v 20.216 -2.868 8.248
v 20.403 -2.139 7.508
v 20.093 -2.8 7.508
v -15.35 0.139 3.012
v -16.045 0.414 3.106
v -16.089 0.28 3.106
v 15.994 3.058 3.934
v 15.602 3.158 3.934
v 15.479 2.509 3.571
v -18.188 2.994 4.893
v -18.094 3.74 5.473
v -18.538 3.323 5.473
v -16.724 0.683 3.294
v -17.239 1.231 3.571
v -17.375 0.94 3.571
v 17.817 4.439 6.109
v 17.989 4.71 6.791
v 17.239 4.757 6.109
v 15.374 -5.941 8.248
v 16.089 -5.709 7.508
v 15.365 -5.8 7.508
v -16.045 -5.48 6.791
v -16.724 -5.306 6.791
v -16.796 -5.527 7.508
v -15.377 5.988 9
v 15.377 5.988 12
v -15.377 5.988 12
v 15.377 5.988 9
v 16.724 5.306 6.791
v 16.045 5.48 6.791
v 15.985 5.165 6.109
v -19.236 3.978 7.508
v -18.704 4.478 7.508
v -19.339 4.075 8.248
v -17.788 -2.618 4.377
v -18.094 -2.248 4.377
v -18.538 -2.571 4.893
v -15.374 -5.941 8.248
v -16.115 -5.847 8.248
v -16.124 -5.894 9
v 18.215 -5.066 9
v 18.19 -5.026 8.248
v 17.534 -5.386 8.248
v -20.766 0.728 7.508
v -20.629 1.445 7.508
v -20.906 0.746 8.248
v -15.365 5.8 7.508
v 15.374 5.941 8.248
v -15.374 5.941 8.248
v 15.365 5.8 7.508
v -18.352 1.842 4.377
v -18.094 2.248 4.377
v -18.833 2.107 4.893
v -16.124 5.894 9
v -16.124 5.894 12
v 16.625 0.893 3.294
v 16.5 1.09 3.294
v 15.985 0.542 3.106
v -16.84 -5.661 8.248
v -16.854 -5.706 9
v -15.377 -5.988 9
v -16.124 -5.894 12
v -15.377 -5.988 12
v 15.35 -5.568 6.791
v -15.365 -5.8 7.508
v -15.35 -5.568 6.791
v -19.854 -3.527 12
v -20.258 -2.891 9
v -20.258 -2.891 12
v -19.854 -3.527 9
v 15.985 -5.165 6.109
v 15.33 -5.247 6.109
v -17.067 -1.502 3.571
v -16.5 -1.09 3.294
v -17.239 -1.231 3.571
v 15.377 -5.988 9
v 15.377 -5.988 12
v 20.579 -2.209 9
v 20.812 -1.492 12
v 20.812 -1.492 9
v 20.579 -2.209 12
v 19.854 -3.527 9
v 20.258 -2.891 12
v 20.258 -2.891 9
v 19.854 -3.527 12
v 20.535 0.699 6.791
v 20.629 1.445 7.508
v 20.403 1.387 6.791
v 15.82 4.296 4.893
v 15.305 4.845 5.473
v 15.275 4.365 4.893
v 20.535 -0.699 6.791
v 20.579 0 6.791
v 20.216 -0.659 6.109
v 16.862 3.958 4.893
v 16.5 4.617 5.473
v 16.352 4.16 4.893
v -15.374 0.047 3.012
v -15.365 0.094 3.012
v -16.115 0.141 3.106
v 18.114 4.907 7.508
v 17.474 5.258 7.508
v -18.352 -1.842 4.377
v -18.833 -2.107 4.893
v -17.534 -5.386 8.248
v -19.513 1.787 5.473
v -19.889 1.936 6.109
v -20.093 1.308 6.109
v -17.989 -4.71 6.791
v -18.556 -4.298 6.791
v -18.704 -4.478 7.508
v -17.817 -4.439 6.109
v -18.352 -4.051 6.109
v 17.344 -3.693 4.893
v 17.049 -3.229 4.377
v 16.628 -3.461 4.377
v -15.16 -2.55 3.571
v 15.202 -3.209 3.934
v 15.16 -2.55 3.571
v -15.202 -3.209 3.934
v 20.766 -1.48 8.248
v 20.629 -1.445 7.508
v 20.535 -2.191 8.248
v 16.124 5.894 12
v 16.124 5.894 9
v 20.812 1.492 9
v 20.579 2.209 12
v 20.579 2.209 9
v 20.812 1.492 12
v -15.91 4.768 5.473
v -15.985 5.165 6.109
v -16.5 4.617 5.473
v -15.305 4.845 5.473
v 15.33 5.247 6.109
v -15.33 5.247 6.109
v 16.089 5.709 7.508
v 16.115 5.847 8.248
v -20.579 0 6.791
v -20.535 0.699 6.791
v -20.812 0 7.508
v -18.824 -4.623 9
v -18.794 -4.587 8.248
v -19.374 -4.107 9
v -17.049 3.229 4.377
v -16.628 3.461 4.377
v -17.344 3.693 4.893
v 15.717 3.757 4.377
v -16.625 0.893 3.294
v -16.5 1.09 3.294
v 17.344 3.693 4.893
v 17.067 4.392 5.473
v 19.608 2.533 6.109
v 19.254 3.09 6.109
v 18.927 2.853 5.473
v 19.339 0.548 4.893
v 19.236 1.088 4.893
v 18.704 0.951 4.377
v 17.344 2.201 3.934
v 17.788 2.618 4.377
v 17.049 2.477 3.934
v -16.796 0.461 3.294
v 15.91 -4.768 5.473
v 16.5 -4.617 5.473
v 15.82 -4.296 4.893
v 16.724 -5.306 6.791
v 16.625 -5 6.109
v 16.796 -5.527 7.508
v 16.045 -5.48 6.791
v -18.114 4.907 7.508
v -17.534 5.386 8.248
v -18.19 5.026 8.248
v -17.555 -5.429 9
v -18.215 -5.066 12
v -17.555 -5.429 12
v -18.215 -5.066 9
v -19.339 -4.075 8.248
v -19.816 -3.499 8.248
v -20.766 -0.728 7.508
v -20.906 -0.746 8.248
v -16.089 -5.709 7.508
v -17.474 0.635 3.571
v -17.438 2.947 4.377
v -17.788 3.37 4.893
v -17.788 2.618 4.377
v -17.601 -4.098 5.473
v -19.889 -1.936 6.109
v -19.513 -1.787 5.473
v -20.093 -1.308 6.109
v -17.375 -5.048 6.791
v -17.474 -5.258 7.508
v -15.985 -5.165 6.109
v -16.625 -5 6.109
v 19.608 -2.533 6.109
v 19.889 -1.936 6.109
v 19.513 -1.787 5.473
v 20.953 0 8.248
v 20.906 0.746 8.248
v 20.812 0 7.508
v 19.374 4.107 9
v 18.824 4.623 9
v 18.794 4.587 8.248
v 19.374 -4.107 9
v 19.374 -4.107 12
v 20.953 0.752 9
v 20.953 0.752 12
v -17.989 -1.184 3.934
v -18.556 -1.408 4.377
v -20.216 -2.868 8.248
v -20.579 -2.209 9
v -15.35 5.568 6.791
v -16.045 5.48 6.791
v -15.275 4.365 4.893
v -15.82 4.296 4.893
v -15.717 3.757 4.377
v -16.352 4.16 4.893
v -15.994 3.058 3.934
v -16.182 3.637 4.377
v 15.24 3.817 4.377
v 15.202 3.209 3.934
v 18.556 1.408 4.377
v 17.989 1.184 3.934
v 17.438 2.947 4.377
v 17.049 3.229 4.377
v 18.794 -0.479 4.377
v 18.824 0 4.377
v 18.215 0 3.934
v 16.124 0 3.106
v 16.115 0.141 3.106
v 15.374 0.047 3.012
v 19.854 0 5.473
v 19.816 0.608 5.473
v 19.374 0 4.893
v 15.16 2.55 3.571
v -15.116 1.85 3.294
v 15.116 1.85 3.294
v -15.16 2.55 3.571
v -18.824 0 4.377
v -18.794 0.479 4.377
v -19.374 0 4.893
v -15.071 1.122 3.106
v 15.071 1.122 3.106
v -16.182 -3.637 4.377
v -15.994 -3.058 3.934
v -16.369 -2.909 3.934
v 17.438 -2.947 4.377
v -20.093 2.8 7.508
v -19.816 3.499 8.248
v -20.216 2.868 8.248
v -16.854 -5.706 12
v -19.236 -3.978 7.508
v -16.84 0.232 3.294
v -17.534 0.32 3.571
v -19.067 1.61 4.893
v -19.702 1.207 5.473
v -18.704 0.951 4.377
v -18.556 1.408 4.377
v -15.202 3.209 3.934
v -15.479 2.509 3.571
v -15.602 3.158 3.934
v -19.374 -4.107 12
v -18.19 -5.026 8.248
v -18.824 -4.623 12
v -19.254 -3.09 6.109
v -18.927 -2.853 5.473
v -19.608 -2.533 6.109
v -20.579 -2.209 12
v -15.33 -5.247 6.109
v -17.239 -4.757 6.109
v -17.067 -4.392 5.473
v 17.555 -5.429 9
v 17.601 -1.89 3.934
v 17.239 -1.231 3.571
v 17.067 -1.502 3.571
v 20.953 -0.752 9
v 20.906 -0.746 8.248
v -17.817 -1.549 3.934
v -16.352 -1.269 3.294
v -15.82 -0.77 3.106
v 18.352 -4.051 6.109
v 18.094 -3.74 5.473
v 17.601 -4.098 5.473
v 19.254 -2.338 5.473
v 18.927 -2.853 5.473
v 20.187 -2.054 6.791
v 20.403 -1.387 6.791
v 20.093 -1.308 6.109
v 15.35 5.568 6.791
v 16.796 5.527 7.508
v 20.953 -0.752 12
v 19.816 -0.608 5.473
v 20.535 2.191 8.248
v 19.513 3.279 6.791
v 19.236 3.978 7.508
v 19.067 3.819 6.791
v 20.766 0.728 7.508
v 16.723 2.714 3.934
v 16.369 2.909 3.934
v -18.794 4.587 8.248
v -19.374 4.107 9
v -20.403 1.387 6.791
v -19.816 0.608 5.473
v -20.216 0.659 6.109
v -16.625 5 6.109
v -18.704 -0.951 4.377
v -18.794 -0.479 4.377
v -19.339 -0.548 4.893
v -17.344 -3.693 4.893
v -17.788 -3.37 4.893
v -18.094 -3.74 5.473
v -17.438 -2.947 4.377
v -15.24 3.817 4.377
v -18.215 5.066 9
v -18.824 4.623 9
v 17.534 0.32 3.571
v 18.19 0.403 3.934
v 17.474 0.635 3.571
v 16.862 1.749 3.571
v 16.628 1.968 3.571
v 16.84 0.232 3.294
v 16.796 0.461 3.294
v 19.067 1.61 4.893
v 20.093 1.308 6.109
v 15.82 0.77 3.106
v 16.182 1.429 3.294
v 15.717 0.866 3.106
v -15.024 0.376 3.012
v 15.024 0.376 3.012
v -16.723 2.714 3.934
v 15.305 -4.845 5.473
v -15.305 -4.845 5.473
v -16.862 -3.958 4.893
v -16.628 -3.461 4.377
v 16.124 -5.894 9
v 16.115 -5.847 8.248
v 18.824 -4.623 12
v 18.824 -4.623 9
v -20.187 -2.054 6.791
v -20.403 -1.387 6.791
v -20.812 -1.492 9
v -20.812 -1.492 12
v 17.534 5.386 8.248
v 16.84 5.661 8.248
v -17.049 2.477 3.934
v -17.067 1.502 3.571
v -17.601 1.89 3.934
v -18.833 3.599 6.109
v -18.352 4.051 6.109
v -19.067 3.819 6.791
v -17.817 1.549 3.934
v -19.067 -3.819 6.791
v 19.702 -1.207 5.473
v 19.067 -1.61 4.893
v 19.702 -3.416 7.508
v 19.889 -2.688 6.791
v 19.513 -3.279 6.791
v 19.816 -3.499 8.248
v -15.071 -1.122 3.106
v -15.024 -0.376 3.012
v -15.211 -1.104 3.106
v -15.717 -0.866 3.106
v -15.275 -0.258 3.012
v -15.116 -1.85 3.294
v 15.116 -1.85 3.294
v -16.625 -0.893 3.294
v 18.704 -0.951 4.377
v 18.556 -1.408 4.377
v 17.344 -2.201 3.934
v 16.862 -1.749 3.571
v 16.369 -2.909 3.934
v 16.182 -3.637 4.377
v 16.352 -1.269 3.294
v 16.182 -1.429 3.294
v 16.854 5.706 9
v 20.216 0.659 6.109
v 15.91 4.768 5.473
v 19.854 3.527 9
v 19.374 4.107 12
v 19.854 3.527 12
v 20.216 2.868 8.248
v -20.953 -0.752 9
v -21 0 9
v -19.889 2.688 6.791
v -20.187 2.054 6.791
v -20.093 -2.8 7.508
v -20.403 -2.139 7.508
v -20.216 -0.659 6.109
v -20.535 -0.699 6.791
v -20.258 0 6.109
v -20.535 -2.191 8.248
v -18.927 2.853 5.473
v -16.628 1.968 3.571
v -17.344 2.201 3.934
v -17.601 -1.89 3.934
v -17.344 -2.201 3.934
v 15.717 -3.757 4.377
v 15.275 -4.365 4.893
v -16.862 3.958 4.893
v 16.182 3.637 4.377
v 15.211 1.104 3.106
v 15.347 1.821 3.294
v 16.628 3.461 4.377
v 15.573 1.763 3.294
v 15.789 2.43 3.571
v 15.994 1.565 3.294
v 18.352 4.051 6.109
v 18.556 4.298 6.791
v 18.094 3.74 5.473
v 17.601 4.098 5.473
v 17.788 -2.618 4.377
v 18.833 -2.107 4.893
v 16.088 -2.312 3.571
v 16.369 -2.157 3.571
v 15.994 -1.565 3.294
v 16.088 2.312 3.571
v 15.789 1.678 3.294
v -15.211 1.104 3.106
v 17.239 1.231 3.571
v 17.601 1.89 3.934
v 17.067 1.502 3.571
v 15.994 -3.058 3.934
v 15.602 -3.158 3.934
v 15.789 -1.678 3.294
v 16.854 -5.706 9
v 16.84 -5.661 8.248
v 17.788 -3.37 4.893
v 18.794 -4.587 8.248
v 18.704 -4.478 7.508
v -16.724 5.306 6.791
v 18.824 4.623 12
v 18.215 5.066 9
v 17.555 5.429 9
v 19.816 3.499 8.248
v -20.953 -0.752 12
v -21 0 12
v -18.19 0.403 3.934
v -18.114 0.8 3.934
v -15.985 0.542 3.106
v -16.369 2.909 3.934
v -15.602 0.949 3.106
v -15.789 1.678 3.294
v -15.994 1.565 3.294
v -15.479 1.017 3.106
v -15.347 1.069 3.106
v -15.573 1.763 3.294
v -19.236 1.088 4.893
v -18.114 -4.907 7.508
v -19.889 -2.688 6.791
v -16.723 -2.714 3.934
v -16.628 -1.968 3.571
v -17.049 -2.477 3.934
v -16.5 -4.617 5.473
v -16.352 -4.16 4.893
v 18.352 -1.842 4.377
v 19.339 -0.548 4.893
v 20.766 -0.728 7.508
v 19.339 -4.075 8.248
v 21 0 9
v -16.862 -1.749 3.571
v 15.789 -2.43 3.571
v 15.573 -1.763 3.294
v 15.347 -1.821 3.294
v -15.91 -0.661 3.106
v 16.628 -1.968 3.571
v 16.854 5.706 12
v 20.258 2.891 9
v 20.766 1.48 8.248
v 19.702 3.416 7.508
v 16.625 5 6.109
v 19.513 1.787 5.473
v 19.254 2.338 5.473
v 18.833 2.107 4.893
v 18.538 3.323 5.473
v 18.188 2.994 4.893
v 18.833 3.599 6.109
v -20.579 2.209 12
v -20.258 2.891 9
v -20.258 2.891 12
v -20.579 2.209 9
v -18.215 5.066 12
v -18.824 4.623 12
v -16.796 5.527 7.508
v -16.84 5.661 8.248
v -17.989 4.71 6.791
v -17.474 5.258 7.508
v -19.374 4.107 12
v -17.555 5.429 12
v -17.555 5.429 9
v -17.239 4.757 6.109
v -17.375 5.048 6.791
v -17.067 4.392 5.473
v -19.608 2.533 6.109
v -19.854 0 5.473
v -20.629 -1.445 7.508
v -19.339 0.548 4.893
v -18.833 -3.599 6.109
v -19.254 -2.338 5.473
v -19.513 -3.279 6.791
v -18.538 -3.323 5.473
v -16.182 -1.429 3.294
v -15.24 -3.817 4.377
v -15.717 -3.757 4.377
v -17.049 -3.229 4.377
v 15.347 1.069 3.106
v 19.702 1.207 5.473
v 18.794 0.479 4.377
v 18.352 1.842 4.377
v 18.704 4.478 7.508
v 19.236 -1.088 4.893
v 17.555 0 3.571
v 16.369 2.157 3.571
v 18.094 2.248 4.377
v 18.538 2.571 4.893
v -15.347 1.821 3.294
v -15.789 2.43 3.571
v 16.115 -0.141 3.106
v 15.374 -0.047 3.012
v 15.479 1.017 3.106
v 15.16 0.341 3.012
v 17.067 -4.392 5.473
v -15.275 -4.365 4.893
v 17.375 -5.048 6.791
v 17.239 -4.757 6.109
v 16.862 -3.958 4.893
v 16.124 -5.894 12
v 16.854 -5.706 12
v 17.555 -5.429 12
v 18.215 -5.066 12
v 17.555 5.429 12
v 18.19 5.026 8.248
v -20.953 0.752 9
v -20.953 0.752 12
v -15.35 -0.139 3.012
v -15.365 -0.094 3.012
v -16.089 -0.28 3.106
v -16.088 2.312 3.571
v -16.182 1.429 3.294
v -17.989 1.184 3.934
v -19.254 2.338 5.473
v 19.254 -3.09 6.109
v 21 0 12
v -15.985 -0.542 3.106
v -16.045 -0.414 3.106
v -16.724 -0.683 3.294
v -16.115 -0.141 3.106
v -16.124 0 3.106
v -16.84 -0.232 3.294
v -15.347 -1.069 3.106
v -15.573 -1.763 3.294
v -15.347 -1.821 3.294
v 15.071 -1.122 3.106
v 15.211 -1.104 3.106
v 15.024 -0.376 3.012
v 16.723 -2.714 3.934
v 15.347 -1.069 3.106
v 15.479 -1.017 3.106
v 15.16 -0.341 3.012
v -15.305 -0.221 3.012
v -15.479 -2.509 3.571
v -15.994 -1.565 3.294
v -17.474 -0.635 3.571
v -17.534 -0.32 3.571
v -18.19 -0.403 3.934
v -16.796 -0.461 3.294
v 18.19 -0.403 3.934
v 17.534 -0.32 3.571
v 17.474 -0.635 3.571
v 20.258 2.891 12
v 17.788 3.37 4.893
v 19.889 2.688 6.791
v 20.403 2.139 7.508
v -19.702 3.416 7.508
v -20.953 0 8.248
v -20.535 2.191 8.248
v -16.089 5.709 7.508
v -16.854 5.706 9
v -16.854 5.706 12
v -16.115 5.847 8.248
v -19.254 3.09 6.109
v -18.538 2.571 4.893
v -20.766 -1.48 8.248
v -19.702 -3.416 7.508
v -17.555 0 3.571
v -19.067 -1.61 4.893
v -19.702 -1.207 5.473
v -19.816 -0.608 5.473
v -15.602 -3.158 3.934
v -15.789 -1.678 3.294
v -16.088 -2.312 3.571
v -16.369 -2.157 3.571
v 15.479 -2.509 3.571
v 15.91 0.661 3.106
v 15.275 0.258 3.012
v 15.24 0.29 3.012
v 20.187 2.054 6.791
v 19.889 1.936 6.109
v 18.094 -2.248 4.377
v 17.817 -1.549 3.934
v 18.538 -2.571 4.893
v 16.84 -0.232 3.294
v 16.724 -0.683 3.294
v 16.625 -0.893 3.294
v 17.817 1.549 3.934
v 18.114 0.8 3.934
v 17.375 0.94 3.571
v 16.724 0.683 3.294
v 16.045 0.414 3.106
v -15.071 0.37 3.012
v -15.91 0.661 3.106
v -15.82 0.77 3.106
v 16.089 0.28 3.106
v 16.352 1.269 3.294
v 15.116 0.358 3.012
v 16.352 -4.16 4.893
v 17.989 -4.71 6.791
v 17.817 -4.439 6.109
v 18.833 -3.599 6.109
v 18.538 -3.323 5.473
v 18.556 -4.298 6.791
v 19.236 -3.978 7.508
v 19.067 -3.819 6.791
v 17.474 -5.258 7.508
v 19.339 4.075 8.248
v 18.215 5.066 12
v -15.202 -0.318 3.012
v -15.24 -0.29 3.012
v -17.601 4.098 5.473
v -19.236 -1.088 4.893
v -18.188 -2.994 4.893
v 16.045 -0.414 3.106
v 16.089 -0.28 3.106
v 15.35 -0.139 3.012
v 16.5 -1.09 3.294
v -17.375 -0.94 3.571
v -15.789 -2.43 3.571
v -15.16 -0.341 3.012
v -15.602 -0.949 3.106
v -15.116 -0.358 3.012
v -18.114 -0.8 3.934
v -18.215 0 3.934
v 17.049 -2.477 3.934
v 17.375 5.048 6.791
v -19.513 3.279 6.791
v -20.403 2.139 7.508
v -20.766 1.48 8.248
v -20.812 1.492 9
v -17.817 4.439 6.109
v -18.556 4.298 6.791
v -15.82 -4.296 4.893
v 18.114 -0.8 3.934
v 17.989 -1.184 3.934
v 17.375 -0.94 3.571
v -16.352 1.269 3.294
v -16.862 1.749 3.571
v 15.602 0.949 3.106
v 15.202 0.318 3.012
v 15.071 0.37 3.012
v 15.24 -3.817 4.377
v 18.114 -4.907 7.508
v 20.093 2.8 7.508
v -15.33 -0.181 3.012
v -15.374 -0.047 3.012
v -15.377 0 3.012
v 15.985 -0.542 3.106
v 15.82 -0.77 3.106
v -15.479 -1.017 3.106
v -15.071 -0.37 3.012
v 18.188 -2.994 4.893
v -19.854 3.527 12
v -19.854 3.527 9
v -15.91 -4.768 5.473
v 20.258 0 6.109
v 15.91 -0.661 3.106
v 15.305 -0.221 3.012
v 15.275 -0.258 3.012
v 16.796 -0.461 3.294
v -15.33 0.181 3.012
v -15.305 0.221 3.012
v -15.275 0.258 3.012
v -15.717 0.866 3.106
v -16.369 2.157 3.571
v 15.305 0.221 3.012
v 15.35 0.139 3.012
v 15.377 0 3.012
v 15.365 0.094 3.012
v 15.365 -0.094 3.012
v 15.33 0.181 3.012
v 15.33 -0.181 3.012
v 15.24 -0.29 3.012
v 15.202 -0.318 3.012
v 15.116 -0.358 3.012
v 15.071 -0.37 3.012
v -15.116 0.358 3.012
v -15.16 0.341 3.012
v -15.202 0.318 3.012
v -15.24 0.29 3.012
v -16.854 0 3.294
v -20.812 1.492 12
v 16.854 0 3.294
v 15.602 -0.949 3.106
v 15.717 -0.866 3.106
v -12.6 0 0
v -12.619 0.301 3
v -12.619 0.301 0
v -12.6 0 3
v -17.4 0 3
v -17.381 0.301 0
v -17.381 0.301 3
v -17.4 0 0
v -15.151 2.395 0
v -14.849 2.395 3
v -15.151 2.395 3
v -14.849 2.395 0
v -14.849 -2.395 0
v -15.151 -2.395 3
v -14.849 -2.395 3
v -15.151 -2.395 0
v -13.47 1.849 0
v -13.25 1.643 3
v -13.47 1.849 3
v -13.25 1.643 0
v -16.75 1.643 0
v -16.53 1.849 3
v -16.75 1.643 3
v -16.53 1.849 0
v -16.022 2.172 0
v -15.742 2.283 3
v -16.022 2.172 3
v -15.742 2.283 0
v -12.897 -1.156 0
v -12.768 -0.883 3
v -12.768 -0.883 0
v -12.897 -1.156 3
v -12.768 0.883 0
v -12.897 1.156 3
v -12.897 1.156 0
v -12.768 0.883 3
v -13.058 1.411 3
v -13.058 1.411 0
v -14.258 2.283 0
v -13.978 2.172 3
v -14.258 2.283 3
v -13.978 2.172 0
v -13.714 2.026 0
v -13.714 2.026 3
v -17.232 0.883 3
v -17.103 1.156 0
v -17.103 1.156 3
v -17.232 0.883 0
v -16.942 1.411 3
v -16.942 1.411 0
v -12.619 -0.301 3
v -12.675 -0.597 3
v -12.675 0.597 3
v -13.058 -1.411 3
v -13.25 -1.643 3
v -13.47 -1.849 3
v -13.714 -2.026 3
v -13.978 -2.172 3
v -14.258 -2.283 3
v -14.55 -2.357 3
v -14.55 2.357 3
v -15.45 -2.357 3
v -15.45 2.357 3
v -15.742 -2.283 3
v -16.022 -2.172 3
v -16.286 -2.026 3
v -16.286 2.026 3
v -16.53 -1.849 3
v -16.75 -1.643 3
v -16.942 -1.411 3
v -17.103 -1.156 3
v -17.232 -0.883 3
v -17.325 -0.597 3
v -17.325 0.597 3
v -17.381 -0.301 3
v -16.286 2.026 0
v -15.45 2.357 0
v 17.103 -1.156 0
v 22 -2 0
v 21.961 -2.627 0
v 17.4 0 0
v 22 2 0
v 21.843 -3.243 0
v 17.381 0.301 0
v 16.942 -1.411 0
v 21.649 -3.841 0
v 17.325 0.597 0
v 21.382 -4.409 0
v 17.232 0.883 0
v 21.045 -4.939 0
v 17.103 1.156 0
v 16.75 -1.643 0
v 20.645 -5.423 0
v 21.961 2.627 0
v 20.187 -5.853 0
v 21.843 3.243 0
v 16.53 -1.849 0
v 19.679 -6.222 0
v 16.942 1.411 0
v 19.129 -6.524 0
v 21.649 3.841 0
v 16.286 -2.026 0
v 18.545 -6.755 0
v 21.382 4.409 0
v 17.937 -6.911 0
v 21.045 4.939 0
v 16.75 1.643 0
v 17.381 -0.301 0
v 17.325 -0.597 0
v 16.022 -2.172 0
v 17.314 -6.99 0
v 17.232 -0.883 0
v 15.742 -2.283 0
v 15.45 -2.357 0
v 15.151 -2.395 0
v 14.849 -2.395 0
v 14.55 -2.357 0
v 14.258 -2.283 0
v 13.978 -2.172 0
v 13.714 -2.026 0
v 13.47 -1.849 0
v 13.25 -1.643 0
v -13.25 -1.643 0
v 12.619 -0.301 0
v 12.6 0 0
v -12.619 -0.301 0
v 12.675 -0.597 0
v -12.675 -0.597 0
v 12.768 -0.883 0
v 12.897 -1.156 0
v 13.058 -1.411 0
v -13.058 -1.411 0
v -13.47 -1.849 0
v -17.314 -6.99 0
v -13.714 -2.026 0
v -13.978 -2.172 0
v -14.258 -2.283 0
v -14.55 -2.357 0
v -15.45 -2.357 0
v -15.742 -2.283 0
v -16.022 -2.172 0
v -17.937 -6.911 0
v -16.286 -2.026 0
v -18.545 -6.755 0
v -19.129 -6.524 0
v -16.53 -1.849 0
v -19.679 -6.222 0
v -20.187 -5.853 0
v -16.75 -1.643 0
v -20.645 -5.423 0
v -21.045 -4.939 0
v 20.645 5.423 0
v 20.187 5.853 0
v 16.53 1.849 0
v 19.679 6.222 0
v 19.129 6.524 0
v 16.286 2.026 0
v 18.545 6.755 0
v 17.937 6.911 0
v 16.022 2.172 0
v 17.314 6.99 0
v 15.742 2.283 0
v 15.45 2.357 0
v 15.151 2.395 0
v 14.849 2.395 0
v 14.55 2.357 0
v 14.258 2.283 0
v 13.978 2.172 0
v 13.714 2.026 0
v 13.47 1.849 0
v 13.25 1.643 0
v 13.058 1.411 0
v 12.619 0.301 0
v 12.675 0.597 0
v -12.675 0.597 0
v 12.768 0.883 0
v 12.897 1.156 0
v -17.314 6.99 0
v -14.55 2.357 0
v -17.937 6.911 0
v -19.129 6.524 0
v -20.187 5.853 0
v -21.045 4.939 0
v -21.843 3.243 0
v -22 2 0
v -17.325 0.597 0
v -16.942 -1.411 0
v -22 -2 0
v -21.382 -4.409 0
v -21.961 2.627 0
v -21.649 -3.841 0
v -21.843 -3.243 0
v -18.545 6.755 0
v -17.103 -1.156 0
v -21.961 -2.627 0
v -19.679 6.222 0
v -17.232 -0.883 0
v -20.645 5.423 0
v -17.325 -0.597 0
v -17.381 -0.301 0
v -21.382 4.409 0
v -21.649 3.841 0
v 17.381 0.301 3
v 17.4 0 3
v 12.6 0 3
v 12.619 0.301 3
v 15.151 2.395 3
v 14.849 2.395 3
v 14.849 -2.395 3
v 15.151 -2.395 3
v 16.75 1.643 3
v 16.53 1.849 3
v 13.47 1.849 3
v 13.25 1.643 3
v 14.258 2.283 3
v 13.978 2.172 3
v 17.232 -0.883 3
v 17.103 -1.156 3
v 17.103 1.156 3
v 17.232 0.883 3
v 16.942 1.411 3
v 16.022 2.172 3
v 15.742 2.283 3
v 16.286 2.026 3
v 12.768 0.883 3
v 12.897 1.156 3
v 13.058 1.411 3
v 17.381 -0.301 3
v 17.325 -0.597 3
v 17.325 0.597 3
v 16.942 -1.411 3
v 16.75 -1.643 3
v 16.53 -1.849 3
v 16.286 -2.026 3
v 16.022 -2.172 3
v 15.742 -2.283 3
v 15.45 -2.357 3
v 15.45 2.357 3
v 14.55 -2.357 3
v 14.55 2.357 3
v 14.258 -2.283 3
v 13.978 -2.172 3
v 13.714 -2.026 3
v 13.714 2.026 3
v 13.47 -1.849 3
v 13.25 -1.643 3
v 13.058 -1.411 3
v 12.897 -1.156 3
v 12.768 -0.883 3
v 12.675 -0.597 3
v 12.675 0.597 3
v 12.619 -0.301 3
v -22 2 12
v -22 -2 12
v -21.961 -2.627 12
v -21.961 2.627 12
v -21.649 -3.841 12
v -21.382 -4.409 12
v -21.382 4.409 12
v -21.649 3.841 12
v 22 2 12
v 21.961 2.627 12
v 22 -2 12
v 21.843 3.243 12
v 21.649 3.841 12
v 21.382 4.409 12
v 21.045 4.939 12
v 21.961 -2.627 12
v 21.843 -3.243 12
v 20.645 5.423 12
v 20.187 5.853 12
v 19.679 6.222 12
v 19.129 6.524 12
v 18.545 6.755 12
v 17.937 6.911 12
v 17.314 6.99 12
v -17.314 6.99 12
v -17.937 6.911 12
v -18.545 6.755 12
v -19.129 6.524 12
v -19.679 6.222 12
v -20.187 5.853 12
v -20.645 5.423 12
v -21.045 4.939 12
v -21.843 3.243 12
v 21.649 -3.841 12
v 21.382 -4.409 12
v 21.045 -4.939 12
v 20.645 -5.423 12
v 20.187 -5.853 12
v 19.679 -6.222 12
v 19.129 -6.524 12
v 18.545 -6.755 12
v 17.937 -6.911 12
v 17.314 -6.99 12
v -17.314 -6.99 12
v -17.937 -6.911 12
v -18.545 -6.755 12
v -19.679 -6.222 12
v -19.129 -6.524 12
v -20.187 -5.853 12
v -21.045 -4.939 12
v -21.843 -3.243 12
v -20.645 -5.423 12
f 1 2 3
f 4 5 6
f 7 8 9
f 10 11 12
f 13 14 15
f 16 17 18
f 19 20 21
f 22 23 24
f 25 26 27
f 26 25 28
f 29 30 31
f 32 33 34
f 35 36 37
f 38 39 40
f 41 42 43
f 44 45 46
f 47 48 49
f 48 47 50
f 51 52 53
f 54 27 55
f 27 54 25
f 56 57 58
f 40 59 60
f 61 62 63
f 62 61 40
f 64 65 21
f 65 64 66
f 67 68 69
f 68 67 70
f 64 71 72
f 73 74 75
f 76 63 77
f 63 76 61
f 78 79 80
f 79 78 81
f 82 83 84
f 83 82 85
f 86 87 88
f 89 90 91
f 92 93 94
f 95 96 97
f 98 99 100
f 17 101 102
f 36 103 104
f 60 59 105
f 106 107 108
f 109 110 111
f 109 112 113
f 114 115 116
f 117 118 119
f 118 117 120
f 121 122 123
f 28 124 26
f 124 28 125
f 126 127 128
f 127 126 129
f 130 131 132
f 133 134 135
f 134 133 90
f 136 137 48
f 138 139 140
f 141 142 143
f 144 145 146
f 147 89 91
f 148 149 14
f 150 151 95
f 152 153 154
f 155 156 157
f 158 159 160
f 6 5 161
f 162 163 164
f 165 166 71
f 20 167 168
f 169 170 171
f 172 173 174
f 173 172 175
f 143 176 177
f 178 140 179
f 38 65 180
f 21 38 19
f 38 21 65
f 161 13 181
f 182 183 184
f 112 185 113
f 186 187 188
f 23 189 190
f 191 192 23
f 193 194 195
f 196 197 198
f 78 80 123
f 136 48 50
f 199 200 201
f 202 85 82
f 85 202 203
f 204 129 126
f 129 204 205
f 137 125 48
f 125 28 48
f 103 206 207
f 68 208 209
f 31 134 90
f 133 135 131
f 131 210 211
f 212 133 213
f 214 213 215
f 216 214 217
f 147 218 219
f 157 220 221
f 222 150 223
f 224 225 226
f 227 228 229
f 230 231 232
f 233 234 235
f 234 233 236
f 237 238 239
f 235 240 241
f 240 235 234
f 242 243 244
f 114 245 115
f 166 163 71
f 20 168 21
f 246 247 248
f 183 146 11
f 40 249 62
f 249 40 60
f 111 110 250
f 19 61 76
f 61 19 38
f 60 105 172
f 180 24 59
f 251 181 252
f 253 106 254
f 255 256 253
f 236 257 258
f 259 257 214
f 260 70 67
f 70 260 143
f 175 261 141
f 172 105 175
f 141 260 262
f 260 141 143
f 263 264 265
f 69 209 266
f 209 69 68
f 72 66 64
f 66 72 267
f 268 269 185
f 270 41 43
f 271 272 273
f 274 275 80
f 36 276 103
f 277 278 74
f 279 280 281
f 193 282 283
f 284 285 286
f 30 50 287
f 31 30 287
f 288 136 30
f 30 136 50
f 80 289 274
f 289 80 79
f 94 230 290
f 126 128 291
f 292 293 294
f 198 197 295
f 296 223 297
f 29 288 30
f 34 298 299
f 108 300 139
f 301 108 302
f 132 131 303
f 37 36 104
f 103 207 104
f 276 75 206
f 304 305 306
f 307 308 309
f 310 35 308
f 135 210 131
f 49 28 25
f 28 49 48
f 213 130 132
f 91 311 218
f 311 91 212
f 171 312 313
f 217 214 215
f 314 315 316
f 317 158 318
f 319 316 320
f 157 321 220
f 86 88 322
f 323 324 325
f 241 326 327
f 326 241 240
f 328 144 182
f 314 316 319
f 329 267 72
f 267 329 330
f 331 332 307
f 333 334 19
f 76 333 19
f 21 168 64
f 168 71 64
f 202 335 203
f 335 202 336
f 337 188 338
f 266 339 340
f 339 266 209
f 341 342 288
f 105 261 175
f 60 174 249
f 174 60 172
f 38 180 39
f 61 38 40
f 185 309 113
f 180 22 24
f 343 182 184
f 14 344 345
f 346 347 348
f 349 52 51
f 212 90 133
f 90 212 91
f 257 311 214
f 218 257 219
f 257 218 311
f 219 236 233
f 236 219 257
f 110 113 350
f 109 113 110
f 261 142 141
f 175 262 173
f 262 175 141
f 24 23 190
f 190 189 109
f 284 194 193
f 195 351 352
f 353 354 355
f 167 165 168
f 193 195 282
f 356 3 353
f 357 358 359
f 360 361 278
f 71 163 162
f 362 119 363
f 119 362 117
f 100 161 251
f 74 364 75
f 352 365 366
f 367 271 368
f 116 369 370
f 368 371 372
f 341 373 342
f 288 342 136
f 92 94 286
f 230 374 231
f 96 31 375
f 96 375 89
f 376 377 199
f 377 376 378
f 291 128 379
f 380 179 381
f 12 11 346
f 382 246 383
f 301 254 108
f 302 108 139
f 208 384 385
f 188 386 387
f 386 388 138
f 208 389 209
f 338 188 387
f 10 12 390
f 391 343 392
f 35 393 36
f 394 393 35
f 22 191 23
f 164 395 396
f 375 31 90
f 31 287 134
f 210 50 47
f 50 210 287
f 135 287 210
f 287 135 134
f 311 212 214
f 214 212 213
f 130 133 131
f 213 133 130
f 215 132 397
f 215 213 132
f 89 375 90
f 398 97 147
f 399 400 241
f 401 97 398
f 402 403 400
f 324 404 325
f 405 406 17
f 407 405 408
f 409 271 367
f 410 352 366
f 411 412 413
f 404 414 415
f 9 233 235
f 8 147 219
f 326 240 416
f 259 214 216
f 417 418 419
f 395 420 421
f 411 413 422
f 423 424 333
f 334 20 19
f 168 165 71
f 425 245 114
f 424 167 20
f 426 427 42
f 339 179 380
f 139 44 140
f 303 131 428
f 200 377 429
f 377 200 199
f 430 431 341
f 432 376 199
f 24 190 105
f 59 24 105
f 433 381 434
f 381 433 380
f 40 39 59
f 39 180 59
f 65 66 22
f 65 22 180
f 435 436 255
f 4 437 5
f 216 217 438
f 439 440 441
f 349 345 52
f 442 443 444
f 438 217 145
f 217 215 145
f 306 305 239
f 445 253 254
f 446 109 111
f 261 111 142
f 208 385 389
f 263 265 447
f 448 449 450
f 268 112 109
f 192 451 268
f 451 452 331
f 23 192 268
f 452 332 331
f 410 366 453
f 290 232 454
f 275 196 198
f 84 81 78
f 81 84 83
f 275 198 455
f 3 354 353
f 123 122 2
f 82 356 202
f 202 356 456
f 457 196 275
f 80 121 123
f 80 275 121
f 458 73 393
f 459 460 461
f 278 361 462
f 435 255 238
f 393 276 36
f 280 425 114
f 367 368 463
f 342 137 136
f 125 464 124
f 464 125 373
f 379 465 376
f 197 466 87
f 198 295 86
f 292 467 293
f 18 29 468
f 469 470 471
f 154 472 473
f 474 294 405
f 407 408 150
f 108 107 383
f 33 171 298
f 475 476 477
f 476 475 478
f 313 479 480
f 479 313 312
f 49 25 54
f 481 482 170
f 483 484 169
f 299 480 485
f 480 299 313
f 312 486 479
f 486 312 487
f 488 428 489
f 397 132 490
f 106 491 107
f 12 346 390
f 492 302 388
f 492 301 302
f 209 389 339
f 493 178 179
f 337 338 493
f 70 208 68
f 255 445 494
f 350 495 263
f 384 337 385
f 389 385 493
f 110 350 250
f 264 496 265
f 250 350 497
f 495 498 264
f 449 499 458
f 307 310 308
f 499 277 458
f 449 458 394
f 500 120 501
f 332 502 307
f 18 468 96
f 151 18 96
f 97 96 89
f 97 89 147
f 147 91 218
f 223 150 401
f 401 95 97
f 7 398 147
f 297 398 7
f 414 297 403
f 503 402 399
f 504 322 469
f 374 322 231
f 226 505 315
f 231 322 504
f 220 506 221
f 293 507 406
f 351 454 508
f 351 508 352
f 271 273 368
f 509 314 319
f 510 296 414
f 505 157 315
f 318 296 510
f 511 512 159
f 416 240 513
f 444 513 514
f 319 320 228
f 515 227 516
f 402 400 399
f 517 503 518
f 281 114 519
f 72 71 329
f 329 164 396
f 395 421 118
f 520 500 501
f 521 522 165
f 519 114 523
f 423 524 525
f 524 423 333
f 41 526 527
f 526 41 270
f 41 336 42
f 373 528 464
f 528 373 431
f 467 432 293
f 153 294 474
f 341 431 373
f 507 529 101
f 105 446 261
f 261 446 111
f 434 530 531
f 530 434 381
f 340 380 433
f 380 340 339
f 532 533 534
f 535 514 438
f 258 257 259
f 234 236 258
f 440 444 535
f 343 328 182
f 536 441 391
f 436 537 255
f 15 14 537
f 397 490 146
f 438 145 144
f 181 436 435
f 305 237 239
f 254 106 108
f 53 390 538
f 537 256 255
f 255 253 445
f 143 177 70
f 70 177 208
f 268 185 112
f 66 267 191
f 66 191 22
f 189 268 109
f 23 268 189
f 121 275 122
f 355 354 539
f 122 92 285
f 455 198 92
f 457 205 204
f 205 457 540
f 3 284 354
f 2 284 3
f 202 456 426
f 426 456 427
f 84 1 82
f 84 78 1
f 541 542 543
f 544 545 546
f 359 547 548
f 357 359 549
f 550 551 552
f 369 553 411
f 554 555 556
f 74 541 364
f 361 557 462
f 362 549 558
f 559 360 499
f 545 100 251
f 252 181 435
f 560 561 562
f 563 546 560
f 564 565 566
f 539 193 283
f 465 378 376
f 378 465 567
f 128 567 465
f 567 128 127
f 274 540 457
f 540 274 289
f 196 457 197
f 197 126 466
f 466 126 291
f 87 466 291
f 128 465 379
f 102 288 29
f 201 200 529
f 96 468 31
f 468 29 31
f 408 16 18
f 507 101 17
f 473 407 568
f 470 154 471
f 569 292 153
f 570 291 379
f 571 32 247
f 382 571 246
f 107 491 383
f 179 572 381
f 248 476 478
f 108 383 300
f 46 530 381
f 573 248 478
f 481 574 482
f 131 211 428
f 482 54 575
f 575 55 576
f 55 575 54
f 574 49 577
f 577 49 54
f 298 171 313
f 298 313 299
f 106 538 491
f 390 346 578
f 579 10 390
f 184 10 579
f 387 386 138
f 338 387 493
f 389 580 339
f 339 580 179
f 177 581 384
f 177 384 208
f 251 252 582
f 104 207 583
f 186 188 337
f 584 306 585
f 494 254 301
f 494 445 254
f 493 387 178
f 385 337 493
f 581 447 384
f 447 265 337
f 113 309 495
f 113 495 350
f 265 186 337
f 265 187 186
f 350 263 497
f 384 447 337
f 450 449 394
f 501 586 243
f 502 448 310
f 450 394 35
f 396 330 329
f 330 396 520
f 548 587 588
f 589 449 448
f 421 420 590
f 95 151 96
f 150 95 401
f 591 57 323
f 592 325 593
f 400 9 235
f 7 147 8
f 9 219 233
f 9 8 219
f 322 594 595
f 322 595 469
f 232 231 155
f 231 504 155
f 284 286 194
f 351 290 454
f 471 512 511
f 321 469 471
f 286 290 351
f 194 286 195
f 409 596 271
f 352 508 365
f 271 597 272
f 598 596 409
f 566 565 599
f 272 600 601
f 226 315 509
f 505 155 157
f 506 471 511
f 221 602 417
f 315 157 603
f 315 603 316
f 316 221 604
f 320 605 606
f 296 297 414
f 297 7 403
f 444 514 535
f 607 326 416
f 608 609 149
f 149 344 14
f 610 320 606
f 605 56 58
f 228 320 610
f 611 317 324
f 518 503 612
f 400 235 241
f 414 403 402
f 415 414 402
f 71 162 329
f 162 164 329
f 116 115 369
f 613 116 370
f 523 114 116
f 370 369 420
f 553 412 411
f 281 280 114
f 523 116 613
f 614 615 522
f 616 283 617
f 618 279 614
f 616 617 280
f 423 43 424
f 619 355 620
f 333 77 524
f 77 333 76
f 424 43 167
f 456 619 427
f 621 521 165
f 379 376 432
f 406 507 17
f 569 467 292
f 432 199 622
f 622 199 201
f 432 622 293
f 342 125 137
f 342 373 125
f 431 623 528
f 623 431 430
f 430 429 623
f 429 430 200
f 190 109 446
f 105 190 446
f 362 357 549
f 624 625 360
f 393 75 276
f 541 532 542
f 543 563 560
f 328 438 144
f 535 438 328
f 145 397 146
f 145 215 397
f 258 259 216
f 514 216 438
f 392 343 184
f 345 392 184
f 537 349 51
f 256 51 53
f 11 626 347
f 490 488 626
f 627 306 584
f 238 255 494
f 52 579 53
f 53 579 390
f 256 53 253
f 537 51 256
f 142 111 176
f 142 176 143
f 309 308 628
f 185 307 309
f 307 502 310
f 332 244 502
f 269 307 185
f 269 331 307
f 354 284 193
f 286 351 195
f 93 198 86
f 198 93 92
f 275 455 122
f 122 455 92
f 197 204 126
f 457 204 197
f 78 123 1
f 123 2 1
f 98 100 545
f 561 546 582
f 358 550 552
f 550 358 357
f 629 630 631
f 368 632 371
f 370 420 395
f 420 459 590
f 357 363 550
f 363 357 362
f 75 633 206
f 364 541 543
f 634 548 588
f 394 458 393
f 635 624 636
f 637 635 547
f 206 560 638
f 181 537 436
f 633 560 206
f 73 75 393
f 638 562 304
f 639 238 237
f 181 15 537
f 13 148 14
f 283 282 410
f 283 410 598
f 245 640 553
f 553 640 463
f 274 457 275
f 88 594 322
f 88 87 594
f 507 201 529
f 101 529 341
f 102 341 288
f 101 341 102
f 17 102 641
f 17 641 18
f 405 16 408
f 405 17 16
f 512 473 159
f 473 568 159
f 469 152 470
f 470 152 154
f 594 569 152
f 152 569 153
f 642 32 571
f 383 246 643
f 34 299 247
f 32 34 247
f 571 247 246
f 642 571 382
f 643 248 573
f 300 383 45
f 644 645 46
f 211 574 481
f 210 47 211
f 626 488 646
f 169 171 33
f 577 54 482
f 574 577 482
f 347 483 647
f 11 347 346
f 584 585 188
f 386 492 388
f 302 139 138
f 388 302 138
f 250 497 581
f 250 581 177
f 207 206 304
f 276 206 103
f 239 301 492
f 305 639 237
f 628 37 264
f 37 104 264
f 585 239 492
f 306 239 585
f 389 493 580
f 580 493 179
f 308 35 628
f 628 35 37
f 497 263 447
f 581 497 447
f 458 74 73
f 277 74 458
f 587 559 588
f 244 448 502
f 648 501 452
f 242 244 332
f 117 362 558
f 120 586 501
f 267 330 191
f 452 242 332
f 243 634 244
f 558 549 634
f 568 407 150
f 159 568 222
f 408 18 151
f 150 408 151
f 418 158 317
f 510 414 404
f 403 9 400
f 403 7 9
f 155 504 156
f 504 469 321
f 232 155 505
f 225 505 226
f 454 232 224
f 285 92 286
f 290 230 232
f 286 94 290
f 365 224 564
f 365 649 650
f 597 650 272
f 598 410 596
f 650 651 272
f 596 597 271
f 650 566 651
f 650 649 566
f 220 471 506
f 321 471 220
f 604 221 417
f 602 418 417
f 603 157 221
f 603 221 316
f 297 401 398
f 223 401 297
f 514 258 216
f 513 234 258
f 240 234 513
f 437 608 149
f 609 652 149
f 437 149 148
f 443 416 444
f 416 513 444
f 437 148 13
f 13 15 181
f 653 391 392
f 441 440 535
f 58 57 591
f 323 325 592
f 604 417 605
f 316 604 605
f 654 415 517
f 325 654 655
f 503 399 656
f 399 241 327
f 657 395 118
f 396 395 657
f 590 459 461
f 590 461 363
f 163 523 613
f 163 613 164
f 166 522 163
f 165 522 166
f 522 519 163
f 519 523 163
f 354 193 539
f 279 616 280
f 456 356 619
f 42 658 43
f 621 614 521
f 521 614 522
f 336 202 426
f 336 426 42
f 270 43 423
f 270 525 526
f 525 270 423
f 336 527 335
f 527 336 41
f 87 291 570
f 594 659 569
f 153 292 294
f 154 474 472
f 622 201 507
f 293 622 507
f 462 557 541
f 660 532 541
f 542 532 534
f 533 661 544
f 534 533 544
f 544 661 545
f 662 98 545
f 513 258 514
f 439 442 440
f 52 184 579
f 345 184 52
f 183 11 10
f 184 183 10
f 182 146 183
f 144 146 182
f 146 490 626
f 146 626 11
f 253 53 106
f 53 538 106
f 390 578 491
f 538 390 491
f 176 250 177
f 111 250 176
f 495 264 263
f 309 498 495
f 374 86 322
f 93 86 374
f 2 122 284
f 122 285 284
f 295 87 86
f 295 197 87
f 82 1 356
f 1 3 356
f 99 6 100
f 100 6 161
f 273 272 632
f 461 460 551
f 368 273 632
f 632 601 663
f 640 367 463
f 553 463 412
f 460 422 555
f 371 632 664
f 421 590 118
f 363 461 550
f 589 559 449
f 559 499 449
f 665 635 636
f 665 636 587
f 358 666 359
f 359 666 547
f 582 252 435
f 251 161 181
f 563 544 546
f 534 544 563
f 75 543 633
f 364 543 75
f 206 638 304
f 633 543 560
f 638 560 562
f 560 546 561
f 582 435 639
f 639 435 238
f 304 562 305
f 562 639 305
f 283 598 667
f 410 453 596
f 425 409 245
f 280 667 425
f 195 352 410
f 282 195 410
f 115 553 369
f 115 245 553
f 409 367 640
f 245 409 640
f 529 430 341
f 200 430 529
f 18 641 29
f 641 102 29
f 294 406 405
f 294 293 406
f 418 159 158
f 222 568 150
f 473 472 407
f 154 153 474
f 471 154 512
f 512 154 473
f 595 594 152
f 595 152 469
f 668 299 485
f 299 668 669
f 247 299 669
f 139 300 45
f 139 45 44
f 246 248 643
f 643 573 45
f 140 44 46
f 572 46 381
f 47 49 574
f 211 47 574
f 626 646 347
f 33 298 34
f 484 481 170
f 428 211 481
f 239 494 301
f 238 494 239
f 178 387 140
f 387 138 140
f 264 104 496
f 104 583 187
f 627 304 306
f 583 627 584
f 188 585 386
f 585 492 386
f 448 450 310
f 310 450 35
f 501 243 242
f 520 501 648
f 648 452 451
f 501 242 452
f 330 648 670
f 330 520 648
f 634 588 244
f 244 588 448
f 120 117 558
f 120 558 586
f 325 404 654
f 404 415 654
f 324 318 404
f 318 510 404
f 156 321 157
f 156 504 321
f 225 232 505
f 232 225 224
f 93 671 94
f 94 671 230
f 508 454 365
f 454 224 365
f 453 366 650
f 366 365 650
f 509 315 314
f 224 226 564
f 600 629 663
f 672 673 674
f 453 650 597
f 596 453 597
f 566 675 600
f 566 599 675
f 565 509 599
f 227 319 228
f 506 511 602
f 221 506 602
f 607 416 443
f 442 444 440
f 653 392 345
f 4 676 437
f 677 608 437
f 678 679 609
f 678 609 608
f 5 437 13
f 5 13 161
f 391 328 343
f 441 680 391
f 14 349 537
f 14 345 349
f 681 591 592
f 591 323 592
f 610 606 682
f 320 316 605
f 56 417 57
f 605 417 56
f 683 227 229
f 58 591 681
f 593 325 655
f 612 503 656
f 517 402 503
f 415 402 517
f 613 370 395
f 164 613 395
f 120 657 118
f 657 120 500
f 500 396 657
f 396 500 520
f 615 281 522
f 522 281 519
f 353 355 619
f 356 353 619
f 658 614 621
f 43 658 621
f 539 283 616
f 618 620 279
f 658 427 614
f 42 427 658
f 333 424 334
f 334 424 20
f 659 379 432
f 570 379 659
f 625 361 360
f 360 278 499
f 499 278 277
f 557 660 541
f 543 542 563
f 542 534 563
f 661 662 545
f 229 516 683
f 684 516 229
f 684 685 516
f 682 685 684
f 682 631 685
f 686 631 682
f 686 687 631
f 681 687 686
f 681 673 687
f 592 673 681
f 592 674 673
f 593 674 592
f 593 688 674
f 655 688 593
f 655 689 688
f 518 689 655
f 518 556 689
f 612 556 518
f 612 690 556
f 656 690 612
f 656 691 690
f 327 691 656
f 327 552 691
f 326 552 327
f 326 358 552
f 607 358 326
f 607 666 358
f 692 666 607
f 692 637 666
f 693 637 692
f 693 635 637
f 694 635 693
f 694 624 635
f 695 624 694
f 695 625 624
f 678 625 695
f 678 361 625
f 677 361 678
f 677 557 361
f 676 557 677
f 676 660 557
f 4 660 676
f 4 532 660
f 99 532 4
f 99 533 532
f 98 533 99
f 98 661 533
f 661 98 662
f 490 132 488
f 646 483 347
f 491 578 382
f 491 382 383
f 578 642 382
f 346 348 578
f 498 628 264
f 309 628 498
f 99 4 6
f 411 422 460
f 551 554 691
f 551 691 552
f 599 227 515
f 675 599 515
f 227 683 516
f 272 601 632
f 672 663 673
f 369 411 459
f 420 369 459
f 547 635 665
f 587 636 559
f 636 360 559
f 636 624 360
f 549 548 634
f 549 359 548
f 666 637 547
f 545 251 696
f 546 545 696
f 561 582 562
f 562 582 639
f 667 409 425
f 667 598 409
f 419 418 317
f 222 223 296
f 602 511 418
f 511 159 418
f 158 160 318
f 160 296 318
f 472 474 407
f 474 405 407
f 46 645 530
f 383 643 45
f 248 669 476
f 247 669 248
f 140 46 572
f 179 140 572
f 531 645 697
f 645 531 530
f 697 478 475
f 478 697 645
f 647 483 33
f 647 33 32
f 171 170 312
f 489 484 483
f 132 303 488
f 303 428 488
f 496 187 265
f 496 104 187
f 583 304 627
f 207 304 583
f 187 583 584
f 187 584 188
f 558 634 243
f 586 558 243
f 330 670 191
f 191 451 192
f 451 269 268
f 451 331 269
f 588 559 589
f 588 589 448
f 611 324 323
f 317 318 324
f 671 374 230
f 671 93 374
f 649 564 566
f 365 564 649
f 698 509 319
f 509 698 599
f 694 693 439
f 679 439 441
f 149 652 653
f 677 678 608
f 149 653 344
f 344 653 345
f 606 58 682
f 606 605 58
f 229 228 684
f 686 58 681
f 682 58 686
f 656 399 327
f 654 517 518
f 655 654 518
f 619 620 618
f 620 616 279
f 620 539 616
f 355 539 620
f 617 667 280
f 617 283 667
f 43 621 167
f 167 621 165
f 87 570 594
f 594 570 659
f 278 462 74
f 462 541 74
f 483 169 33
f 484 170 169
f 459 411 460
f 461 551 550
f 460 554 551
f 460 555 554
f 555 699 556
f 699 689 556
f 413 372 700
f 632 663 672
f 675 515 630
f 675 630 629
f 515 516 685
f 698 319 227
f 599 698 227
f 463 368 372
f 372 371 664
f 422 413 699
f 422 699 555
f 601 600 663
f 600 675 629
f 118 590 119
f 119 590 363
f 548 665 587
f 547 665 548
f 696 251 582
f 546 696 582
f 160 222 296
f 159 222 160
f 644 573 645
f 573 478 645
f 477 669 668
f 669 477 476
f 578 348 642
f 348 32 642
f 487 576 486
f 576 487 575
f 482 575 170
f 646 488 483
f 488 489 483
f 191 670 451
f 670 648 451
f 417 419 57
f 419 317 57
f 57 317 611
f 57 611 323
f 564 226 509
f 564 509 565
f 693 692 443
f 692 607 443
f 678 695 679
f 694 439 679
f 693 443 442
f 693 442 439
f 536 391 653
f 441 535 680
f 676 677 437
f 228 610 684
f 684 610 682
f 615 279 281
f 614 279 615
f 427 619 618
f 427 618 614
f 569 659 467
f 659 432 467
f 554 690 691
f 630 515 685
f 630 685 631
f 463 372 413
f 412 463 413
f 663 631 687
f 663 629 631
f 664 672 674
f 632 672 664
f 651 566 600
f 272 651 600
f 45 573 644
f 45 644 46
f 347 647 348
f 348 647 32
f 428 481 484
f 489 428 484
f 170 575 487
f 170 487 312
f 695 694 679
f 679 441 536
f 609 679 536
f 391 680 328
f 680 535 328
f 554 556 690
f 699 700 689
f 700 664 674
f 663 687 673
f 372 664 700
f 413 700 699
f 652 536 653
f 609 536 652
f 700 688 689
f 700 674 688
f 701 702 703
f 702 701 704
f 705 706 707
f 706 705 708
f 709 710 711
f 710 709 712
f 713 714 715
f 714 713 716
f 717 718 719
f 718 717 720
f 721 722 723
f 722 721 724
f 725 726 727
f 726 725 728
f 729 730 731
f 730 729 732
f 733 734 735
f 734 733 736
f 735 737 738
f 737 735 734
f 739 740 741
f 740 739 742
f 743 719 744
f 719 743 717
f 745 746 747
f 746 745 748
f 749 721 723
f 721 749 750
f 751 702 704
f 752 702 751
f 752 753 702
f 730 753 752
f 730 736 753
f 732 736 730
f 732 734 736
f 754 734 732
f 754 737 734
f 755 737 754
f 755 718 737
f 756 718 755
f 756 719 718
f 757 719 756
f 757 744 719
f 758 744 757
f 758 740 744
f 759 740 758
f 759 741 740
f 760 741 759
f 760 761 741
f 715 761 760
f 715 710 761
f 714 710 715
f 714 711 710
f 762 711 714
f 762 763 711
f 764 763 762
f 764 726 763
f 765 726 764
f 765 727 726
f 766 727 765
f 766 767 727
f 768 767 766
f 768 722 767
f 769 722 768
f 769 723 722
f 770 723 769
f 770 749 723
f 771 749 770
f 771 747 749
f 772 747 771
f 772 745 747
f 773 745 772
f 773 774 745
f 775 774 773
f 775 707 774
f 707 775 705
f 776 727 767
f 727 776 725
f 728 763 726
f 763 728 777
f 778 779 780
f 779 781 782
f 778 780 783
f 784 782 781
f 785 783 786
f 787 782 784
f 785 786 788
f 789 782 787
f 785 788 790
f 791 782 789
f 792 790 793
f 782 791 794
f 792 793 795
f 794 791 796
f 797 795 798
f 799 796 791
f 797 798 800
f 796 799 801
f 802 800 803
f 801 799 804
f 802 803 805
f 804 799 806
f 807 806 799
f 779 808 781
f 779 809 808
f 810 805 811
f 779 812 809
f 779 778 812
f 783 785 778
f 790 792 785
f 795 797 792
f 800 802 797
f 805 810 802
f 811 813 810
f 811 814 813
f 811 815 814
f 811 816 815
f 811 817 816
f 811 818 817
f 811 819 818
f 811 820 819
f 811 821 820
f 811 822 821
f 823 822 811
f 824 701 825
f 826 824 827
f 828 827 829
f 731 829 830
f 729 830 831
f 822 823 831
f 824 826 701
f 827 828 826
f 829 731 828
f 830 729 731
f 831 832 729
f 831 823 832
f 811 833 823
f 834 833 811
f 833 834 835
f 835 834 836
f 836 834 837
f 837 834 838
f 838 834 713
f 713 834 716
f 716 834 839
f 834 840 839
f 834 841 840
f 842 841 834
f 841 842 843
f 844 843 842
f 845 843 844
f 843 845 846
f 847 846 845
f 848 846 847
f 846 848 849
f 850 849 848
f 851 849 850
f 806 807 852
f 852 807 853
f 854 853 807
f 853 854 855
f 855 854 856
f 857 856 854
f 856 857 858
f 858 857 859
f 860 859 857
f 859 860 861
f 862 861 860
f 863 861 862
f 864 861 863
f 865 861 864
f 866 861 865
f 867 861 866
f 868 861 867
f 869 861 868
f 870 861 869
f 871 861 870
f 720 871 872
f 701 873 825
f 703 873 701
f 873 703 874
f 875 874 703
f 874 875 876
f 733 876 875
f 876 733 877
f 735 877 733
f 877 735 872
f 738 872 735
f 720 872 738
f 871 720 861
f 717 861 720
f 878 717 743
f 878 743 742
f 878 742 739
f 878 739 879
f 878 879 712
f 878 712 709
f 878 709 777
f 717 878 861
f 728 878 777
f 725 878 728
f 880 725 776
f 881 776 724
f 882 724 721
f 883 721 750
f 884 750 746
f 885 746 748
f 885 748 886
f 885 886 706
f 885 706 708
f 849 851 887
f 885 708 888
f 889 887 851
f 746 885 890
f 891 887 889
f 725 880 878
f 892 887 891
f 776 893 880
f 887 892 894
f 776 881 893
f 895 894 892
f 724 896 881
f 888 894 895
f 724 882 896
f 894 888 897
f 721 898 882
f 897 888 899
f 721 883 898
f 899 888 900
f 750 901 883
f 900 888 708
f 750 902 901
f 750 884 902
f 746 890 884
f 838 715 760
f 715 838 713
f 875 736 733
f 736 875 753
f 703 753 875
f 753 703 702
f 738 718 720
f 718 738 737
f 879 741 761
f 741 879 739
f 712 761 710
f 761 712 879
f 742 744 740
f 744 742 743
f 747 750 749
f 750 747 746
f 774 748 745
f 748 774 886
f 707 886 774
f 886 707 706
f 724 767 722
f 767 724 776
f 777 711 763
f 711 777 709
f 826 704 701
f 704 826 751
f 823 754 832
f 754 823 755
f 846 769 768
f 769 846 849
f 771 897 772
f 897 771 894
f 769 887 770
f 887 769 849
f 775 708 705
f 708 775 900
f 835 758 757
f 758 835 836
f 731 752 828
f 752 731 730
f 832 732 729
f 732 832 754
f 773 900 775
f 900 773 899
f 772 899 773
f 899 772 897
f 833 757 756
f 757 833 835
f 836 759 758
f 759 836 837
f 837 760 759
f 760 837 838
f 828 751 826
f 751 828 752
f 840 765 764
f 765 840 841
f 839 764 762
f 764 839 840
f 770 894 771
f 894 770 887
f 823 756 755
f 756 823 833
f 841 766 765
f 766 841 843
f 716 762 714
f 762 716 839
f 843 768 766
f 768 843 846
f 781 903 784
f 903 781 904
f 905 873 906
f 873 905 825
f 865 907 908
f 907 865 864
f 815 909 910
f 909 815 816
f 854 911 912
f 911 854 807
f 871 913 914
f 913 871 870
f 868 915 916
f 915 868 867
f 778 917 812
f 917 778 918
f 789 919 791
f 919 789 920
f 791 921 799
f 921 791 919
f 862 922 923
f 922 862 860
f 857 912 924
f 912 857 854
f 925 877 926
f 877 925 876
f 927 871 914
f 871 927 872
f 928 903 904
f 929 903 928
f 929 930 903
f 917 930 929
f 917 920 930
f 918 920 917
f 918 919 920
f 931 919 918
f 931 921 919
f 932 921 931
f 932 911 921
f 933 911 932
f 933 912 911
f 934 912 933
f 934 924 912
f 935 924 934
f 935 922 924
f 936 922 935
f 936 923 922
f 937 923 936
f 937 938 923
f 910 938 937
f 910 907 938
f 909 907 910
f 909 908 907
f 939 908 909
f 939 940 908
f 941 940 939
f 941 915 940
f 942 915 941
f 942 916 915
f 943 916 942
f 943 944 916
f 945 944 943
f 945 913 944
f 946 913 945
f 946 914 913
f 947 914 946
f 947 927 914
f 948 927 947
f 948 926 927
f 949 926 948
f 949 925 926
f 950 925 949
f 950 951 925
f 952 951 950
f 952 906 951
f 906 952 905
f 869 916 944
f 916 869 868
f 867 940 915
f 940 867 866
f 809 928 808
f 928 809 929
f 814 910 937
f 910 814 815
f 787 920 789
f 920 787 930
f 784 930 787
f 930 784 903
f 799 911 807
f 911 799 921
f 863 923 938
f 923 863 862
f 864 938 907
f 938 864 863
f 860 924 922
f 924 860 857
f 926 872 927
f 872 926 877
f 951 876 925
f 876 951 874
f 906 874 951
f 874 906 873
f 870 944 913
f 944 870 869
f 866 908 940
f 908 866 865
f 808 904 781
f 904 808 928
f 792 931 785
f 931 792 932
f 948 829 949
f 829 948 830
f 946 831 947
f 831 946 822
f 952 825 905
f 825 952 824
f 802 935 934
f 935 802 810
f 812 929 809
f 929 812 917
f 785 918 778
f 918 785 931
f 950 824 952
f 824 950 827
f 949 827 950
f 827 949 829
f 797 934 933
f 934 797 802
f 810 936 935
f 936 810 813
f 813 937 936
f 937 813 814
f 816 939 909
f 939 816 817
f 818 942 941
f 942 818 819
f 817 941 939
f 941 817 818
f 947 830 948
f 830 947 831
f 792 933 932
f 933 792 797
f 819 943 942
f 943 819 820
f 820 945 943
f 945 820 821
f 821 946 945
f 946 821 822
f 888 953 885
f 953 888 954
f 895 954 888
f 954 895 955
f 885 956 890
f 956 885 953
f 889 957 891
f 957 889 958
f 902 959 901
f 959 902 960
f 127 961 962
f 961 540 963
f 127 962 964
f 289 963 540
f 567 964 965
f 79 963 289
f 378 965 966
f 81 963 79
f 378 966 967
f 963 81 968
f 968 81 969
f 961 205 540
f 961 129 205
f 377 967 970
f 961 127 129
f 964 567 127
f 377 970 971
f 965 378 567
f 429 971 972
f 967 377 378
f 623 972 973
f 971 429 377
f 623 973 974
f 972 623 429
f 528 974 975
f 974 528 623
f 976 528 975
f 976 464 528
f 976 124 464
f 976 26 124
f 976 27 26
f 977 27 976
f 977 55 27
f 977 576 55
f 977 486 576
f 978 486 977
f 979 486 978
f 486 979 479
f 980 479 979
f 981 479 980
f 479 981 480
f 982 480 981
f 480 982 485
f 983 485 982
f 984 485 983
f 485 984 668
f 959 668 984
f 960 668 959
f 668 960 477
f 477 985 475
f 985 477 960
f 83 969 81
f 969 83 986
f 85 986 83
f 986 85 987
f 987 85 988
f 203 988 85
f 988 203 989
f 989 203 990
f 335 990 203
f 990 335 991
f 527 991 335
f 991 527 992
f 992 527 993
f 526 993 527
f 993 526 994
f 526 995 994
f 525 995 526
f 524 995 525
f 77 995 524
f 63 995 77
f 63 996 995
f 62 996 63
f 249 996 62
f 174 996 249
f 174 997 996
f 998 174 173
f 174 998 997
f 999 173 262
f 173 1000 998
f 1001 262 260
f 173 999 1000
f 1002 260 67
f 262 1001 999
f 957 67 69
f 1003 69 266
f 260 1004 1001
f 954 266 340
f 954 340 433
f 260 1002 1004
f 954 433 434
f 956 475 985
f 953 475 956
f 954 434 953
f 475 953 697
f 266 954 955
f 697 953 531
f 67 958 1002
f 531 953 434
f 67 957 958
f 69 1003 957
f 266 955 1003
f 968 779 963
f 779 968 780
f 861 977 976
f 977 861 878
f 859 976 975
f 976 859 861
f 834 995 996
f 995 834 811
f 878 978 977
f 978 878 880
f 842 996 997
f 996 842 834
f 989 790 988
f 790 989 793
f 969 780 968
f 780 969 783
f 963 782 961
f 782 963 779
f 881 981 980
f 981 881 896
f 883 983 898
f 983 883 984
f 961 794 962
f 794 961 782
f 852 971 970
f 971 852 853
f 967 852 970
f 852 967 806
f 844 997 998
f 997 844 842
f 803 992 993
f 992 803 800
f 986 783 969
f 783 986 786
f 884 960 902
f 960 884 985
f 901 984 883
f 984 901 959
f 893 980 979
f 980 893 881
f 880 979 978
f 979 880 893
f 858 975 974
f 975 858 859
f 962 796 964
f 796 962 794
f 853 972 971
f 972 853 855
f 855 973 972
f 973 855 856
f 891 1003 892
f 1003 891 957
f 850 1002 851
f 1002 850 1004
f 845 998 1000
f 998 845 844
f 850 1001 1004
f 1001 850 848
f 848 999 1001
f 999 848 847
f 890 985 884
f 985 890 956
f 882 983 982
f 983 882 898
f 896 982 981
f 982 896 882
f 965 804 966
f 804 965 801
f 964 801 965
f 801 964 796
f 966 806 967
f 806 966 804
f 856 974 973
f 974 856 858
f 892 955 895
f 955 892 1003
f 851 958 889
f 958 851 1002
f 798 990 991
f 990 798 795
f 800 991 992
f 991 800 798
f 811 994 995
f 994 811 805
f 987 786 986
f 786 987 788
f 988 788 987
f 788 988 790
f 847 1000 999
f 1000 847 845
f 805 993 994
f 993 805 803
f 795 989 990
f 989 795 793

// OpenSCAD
$fn = 50;


difference() {
	union() {
		translate(v = [0, 0, 0]) {
			rotate(a = [0, 0, 0]) {
				hull() {
					translate(v = [-17.0000000000, 2.0000000000, 0]) {
						rotate(a = [0, 0, 0]) {
							translate(v = [0, 0, 0]) {
								rotate(a = [0, 0, 0]) {
									cylinder(h = 12, r = 5);
								}
							}
						}
					}
					translate(v = [17.0000000000, 2.0000000000, 0]) {
						rotate(a = [0, 0, 0]) {
							translate(v = [0, 0, 0]) {
								rotate(a = [0, 0, 0]) {
									cylinder(h = 12, r = 5);
								}
							}
						}
					}
					translate(v = [-17.0000000000, -2.0000000000, 0]) {
						rotate(a = [0, 0, 0]) {
							translate(v = [0, 0, 0]) {
								rotate(a = [0, 0, 0]) {
									cylinder(h = 12, r = 5);
								}
							}
						}
					}
					translate(v = [17.0000000000, -2.0000000000, 0]) {
						rotate(a = [0, 0, 0]) {
							translate(v = [0, 0, 0]) {
								rotate(a = [0, 0, 0]) {
									cylinder(h = 12, r = 5);
								}
							}
						}
					}
				}
			}
		}
	}
	union() {
		translate(v = [0, 0, 3]) {
			rotate(a = [0, 0, 0]) {
				hull() {
					union() {
						translate(v = [-15.0000000000, 0.0000000000, 6]) {
							rotate(a = [0, 0, 0]) {
								translate(v = [0, 0, 0]) {
									rotate(a = [0, 0, 0]) {
										cylinder(h = 20, r = 6);
									}
								}
							}
						}
						translate(v = [-15.0000000000, 0.0000000000, 6]) {
							rotate(a = [0, 0, 0]) {
								sphere(r = 6);
							}
						}
						translate(v = [-15.0000000000, 0.0000000000, 26]) {
							rotate(a = [0, 0, 0]) {
								sphere(r = 6);
							}
						}
					}
					union() {
						translate(v = [15.0000000000, 0.0000000000, 6]) {
							rotate(a = [0, 0, 0]) {
								translate(v = [0, 0, 0]) {
									rotate(a = [0, 0, 0]) {
										cylinder(h = 20, r = 6);
									}
								}
							}
						}
						translate(v = [15.0000000000, 0.0000000000, 6]) {
							rotate(a = [0, 0, 0]) {
								sphere(r = 6);
							}
						}
						translate(v = [15.0000000000, 0.0000000000, 26]) {
							rotate(a = [0, 0, 0]) {
								sphere(r = 6);
							}
						}
					}
					union() {
						translate(v = [-15.0000000000, 0.0000000000, 6]) {
							rotate(a = [0, 0, 0]) {
								translate(v = [0, 0, 0]) {
									rotate(a = [0, 0, 0]) {
										cylinder(h = 20, r = 6);
									}
								}
							}
						}
						translate(v = [-15.0000000000, 0.0000000000, 6]) {
							rotate(a = [0, 0, 0]) {
								sphere(r = 6);
							}
						}
						translate(v = [-15.0000000000, 0.0000000000, 26]) {
							rotate(a = [0, 0, 0]) {
								sphere(r = 6);
							}
						}
					}
					union() {
						translate(v = [15.0000000000, 0.0000000000, 6]) {
							rotate(a = [0, 0, 0]) {
								translate(v = [0, 0, 0]) {
									rotate(a = [0, 0, 0]) {
										cylinder(h = 20, r = 6);
									}
								}
							}
						}
						translate(v = [15.0000000000, 0.0000000000, 6]) {
							rotate(a = [0, 0, 0]) {
								sphere(r = 6);
							}
						}
						translate(v = [15.0000000000, 0.0000000000, 26]) {
							rotate(a = [0, 0, 0]) {
								sphere(r = 6);
							}
						}
					}
				}
			}
		}
		translate(v = [-15.0000000000, 0.0000000000, 0]) {
			rotate(a = [0, 0, 0]) {
				cylinder(h = 3, r1 = 2.4000000000, r2 = 2.4000000000);
			}
		}
		translate(v = [-15.0000000000, 0.0000000000, -3]) {
			rotate(a = [0, 0, 0]) {
				cylinder(h = 6, r = 1.5000000000);
			}
		}
		translate(v = [15.0000000000, 0.0000000000, 0]) {
			rotate(a = [0, 0, 0]) {
				cylinder(h = 3, r1 = 2.4000000000, r2 = 2.4000000000);
			}
		}
		translate(v = [15.0000000000, 0.0000000000, -3]) {
			rotate(a = [0, 0, 0]) {
				cylinder(h = 6, r = 1.5000000000);
			}
		}
		translate(v = [-15.0000000000, 0.0000000000, 0]) {
			rotate(a = [0, 0, 0]) {
				cylinder(h = 3, r1 = 2.4000000000, r2 = 2.4000000000);
			}
		}
		translate(v = [-15.0000000000, 0.0000000000, -3]) {
			rotate(a = [0, 0, 0]) {
				cylinder(h = 6, r = 1.5000000000);
			}
		}
		translate(v = [15.0000000000, 0.0000000000, 0]) {
			rotate(a = [0, 0, 0]) {
				cylinder(h = 3, r1 = 2.4000000000, r2 = 2.4000000000);
			}
		}
		translate(v = [15.0000000000, 0.0000000000, -3]) {
			rotate(a = [0, 0, 0]) {
				cylinder(h = 6, r = 1.5000000000);
			}
		}
	}
}
